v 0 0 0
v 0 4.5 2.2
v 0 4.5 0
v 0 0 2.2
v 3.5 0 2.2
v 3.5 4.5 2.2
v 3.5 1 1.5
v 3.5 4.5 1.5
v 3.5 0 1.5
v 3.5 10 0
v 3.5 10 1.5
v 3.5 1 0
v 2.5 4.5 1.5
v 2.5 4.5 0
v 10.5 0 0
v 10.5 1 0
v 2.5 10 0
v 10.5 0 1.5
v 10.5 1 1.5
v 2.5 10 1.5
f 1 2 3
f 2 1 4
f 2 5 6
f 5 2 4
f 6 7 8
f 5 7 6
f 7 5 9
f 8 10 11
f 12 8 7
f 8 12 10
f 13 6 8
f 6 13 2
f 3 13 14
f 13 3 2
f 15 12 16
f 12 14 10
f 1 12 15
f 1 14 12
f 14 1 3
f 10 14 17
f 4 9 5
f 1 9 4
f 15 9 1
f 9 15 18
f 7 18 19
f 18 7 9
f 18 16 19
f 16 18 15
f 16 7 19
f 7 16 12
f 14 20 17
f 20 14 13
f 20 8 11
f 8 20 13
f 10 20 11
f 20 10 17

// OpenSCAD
/*
    Mirror holder for the head-mounted camera system as described in:

    AF Meyer, J Poort, J O'Keefe, M Sahani, and JF Linden: 
    An ultralight head-mounted camera system integrates detailed behavioral 
    monitoring with multichannel electrophysiology in freely moving mice 
    (in revision and bioRxiv:294397)

    author: arne.f.meyer@gmail.com
    licence: GPLv3
*/

// base of the holder width hole for cannula
base_width = 3.5;
base_length = 4.5;
base_height = 2.2;  // suitable for 21 G cannulas

// "arms" for holding the IR mirror tile
arm_height = 1.5;
arm_width = 1;

// mirror dimensions; it might be useful to add 1-2 mm to both dimensions
// and cut off exceeding material using a scapel etc later on. Moreover, cut 
// mirror tiles are typically not perfect squares and for eye and whisker pad
// tracking it is typically useful to have a wide field of view in horizontal 
// rather than in vertical direction.
mirror_width = 7;
mirror_length = 9;

union()
{
    // base
    cube([base_width, base_length, base_height]);

    // left "arm"
    translate([base_width, 0, 0])
        cube([mirror_width, arm_width, arm_height]);

    // upper "arm"
    translate([base_width-arm_width, arm_width, 0])
        cube([arm_width, mirror_length, arm_height]);
}
